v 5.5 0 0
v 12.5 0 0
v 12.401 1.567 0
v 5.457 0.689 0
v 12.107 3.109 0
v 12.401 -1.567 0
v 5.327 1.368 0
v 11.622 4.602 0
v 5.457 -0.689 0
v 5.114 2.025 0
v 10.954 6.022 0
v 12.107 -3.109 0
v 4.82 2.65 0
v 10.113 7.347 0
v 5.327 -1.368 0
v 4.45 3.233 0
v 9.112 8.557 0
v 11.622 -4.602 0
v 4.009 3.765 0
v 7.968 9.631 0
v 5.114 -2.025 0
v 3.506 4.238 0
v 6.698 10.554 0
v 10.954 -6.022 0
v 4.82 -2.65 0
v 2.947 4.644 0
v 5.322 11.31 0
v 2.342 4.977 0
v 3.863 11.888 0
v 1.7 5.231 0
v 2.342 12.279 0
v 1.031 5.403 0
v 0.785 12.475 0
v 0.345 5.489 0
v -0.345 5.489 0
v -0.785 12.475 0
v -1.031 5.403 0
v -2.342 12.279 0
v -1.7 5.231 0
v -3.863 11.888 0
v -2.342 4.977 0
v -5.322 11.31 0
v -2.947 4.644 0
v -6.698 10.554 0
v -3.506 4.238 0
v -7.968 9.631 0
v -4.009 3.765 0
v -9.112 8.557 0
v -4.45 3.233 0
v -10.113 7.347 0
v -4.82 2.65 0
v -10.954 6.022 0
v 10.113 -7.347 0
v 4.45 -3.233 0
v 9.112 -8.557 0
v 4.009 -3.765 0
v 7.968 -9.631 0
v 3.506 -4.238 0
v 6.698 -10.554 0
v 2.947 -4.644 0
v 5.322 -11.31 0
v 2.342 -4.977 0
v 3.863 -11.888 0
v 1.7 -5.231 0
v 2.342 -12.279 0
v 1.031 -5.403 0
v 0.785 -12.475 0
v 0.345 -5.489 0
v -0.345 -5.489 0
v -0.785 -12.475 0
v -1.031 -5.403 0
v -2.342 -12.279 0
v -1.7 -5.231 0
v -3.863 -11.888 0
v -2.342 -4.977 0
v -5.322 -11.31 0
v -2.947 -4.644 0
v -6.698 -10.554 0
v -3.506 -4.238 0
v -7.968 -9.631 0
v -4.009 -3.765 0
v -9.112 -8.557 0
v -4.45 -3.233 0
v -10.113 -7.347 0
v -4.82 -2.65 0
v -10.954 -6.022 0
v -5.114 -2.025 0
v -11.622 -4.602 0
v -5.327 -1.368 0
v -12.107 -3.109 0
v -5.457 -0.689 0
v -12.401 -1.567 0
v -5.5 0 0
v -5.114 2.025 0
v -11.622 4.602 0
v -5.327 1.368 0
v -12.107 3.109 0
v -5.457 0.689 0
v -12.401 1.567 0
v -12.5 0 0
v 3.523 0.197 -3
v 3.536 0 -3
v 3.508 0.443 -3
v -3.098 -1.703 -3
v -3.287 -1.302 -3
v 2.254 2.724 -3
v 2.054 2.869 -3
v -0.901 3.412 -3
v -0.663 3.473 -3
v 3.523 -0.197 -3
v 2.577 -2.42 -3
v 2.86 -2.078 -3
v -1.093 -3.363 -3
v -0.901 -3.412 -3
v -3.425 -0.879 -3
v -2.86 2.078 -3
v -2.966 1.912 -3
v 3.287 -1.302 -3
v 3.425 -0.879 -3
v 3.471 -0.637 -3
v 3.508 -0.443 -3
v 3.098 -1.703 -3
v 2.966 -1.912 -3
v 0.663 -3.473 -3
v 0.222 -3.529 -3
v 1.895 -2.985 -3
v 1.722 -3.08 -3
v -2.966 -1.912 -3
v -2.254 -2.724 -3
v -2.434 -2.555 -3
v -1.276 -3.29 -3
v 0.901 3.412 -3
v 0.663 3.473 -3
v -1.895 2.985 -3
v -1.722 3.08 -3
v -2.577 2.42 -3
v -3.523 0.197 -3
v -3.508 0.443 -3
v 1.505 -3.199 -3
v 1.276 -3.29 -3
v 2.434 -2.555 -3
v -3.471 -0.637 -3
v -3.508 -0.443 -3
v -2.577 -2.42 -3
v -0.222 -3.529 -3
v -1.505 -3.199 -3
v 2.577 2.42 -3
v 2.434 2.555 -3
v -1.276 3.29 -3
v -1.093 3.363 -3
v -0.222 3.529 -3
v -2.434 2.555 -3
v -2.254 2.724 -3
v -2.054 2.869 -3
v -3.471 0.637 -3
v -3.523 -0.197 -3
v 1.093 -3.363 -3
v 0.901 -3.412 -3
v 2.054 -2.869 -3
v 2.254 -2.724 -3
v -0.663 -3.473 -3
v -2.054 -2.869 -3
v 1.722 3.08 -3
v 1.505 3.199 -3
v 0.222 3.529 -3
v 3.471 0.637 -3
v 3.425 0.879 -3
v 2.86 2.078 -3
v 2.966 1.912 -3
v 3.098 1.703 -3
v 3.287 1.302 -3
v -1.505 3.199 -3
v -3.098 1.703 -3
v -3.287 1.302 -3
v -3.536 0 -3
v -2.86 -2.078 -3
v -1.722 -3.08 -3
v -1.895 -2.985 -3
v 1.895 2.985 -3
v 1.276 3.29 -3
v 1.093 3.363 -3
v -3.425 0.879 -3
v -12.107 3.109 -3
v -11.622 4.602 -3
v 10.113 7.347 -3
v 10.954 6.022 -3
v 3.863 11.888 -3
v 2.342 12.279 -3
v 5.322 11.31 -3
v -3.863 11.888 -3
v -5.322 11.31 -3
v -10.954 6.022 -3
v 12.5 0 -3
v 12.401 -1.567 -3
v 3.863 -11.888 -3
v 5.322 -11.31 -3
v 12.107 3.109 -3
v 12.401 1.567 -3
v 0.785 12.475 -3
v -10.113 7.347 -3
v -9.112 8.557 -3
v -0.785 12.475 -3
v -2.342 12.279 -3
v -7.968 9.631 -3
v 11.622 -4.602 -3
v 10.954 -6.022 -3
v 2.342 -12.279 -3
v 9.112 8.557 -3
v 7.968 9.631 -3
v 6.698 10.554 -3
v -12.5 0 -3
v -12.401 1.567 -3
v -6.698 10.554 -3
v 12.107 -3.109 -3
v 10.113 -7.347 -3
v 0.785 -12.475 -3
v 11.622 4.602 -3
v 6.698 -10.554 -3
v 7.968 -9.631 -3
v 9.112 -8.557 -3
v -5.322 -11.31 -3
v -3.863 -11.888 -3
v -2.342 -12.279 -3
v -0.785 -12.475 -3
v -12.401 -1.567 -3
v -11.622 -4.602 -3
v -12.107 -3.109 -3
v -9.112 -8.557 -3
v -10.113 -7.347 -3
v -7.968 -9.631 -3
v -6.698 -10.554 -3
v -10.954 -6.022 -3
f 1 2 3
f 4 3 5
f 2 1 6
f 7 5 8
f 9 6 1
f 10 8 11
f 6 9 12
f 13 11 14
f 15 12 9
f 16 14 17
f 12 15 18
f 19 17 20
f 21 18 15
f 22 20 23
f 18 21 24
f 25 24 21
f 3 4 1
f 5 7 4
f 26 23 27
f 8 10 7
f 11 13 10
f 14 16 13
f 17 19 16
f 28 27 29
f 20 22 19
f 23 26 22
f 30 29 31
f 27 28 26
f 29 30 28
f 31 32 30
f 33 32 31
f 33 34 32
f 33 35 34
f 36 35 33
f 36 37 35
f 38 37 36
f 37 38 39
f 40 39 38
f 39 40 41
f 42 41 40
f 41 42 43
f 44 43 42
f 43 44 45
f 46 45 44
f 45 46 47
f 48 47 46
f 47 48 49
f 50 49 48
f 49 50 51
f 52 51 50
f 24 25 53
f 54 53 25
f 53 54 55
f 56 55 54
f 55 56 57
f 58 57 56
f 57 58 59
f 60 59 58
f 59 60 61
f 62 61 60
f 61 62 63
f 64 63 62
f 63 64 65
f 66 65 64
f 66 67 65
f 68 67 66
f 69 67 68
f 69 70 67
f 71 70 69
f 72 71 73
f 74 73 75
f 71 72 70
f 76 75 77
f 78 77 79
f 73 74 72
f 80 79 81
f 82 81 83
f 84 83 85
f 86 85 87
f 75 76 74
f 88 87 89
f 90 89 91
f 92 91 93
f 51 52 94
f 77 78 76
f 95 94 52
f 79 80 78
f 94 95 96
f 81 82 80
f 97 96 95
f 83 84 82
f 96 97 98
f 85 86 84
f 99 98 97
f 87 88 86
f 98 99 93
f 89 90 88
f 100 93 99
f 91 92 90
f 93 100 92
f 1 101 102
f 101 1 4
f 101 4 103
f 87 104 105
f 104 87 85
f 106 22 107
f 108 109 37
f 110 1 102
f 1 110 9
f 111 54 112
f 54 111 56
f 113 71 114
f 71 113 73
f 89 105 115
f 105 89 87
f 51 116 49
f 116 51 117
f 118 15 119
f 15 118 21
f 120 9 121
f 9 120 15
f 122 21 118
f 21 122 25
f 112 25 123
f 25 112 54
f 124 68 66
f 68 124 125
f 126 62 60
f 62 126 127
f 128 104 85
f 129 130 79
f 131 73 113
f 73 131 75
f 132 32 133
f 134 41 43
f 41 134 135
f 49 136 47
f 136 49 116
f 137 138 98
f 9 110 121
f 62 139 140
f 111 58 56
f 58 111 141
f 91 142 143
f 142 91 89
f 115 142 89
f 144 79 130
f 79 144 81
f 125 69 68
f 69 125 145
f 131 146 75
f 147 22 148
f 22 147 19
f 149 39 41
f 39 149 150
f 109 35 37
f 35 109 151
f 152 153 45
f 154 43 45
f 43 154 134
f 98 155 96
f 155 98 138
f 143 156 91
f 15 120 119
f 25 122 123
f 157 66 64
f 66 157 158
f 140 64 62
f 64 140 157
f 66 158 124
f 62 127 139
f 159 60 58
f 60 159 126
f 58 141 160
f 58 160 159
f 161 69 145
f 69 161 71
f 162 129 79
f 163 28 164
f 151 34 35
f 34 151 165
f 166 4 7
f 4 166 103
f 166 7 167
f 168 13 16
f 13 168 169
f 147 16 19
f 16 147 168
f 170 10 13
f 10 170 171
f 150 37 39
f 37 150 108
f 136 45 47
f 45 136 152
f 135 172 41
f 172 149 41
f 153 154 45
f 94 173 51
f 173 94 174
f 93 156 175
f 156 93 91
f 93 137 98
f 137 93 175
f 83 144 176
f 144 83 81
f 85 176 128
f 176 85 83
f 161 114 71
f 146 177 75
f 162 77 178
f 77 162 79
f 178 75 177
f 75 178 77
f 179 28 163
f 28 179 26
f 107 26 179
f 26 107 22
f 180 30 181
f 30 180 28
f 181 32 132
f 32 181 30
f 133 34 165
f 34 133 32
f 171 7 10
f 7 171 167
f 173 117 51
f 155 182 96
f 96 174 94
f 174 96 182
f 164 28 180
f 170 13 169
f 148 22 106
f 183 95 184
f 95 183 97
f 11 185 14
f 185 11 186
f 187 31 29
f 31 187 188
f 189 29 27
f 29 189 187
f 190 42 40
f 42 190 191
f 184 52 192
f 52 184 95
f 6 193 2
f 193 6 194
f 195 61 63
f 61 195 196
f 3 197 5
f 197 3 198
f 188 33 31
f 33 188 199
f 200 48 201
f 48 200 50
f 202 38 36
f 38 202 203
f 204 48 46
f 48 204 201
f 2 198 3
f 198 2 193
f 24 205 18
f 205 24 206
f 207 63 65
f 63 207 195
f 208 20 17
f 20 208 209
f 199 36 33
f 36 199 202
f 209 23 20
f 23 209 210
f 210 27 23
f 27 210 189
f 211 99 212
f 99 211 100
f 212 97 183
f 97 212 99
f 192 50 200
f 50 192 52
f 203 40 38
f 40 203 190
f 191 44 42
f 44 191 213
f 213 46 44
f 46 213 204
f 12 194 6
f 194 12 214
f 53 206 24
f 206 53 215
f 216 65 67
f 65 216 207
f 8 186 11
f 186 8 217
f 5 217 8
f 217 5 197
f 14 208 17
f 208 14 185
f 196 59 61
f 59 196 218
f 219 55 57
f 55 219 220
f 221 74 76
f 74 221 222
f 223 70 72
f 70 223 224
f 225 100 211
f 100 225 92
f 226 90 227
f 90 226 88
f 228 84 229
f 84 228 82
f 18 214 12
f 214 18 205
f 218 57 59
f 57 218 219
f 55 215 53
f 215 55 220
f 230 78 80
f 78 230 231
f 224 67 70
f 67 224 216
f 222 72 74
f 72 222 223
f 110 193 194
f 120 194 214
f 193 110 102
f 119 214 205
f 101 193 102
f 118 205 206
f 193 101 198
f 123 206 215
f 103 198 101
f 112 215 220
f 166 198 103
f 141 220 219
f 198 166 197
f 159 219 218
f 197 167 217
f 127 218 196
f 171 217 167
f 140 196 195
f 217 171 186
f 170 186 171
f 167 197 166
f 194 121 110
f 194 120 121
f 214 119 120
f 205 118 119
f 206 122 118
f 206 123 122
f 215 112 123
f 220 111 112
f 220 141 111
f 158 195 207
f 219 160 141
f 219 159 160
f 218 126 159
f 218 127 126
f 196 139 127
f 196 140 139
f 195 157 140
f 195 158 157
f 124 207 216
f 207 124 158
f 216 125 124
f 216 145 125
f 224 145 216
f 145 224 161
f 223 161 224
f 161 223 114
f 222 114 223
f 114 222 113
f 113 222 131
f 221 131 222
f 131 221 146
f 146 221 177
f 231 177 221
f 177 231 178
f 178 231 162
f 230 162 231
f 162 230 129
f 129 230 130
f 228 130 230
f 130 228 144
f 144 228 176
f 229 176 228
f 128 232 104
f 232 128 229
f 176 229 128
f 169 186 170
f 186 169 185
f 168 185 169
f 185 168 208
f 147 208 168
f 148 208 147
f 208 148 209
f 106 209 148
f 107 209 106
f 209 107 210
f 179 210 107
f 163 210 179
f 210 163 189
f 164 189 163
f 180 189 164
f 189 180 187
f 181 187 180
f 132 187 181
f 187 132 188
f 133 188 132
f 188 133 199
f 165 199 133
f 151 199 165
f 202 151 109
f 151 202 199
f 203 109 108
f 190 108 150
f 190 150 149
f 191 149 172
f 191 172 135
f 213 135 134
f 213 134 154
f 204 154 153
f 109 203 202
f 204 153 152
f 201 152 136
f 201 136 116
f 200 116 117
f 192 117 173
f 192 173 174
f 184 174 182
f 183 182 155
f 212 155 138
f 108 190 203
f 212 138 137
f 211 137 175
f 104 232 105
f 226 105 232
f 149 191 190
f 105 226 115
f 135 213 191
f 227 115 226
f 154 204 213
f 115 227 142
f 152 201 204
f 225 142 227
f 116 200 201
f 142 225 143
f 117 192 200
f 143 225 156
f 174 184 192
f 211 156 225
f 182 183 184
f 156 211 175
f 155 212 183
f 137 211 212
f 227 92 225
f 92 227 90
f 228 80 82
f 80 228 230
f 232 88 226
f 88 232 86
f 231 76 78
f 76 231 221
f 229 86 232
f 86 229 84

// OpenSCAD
$fn = 50;

difference() {
	union() {
		translate(v = [0, 0, -3.0]) {
			cylinder(h = 3, r = 12.5);
		}
	}
	union() {
		translate(v = [0, 0, 0]) {
			rotate(a = [0, 0, 0]) {
				difference() {
					union() {
						translate(v = [0, 0, -6.0]) {
							cylinder(h = 6, r = 2.25);
						}
						translate(v = [0, 0, -4.2]) {
							cylinder(h = 4.2, r1 = 2.75, r2 = 5.5);
						}
						translate(v = [0, 0, -6.0]) {
							cylinder(h = 6, r = 2.75);
						}
						translate(v = [0, 0, -6.0]) {
							cylinder(h = 6, r = 2.25);
						}
					}
					union();
				}
			}
		}
	}
}
